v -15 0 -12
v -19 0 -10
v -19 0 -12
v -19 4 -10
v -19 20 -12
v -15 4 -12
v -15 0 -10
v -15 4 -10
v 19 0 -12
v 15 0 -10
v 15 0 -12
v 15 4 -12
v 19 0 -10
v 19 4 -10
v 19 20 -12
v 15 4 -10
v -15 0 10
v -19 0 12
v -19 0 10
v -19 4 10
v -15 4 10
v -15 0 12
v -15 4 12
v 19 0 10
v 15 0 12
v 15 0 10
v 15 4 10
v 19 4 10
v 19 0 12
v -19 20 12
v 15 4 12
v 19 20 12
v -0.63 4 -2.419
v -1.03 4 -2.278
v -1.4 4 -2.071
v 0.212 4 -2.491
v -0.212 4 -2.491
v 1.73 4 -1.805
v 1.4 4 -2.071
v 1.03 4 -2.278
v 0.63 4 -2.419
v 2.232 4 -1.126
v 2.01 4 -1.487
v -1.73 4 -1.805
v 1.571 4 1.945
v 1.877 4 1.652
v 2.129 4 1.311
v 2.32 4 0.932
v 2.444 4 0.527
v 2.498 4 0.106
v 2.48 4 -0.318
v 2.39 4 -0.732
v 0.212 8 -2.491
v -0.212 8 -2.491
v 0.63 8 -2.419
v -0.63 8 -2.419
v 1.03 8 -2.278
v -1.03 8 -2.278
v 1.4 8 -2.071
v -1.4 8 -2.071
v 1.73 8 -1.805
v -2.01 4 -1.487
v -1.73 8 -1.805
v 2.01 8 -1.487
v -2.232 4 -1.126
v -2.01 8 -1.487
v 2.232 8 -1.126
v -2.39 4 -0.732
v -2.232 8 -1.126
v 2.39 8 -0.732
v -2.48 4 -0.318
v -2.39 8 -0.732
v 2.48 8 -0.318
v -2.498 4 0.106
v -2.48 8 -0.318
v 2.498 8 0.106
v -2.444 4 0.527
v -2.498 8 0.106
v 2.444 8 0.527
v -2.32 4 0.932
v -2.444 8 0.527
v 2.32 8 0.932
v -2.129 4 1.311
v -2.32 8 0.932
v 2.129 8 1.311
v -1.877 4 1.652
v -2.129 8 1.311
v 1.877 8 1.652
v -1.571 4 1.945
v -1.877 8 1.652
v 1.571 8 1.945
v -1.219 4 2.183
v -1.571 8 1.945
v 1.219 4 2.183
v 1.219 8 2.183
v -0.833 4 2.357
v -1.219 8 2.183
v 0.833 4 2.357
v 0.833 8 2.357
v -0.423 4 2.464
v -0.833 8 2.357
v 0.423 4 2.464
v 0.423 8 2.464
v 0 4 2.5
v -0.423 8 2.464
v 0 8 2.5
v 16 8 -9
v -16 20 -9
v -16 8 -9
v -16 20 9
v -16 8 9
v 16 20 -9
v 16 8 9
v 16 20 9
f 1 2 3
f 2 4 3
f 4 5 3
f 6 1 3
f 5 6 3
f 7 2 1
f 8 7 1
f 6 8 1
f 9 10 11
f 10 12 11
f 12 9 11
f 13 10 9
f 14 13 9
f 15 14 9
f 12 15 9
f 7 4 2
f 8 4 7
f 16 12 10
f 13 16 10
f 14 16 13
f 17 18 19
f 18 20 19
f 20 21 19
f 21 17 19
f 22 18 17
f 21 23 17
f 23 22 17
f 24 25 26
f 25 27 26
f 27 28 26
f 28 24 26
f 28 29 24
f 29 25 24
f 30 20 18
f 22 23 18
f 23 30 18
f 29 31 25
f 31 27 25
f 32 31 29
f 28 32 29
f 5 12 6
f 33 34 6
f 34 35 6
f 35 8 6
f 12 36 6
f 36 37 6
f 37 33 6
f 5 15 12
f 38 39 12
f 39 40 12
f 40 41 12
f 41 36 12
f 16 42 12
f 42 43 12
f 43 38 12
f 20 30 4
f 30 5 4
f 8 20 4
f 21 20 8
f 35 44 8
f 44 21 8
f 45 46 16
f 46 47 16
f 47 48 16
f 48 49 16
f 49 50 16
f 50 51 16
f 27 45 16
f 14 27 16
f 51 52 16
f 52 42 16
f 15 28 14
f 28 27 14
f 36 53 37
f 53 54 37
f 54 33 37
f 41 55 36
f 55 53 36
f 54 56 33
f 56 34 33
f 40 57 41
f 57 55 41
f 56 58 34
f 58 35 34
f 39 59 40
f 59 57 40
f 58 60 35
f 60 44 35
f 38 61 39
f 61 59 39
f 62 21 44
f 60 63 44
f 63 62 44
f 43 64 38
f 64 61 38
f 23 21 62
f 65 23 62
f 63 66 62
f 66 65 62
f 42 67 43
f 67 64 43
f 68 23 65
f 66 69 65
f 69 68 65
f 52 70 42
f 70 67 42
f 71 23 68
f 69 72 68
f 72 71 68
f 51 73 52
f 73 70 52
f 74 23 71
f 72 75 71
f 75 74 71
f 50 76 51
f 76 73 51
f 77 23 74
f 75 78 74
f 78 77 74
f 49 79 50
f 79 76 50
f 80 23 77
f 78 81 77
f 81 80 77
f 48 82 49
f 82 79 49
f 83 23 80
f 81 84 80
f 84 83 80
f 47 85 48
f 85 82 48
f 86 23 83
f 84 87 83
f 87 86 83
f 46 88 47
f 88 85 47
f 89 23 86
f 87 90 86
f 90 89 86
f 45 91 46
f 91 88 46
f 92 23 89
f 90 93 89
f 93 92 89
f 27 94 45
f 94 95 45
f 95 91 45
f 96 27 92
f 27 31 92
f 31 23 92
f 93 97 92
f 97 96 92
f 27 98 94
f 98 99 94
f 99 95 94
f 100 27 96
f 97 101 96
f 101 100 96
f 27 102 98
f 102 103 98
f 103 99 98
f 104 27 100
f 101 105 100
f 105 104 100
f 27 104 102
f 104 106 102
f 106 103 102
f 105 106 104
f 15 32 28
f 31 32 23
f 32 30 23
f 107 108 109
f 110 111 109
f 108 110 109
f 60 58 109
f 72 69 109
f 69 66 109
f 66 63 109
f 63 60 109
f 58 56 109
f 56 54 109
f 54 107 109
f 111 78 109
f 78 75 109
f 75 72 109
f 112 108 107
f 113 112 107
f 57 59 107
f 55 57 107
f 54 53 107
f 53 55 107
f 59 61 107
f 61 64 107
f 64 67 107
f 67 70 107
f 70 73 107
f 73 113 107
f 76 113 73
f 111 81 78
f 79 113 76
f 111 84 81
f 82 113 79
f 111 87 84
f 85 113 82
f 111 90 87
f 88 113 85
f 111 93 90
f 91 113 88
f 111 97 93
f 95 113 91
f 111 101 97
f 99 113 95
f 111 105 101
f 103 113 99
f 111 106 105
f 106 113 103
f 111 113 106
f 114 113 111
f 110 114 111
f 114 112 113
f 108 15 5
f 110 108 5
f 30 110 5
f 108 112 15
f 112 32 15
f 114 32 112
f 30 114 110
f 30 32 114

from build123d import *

# Parameters (mm, degrees)
ESQUISSE1_W             = 38
ESQUISSE1_H             = 24
BOSS_EXTRU_1_DEPTH      = 20
ESQUISSE2_W             = 32
ESQUISSE2_H             = 18
ENL_V_MAT_EXTRU_1_DEPTH = 12
ESQUISSE3_W             = 30
ESQUISSE3_H             = 5
ENL_V_MAT_EXTRU_2_DEPTH = 30
ESQUISSE4_W             = 20
ESQUISSE4_H             = 5
ENL_V_MAT_EXTRU_3_DEPTH = 60
ESQUISSE5_R             = 2.5
ENL_V_MAT_EXTRU_4_DEPTH = 60


with BuildPart() as part:
    # Esquisse1 → Boss.-Extru.1 (new body)
    with BuildSketch(Plane(origin=(0, 0, 0), x_dir=(1, 0, 0), z_dir=(0, 1, 0))):
        Rectangle(ESQUISSE1_W, ESQUISSE1_H)
    extrude(amount=BOSS_EXTRU_1_DEPTH)

    # Esquisse2 → Enlèv. mat.-Extru.1 (cut)
    with BuildSketch(Plane(origin=(0, 20, 0), x_dir=(1, 0, 0), z_dir=(0, 1, 0))):
        Rectangle(ESQUISSE2_W, ESQUISSE2_H)
    extrude(amount=-ENL_V_MAT_EXTRU_1_DEPTH, mode=Mode.SUBTRACT)

    # Esquisse3 → Enlèv. mat.-Extru.2 (cut)
    with BuildSketch(Plane.XY.offset(12)):
        with Locations((0, 1.5)):
            Rectangle(ESQUISSE3_W, ESQUISSE3_H)
    extrude(amount=-ENL_V_MAT_EXTRU_2_DEPTH, mode=Mode.SUBTRACT)

    # Esquisse4 → Enlèv. mat.-Extru.3 (cut)
    with BuildSketch(Plane.ZY.offset(19)):
        with Locations((0, 1.5)):
            Rectangle(ESQUISSE4_W, ESQUISSE4_H)
    extrude(amount=-ENL_V_MAT_EXTRU_3_DEPTH, mode=Mode.SUBTRACT)

    # Esquisse5 → Enlèv. mat.-Extru.4 (cut)
    with BuildSketch(Plane(origin=(0, 8, 0), x_dir=(1, 0, 0), z_dir=(0, 1, 0))):
        with Locations(Location((0, 0, 0), (0, 0, 270))):
            Circle(ESQUISSE5_R)
    extrude(amount=-ENL_V_MAT_EXTRU_4_DEPTH, mode=Mode.SUBTRACT)


solid = part.part
